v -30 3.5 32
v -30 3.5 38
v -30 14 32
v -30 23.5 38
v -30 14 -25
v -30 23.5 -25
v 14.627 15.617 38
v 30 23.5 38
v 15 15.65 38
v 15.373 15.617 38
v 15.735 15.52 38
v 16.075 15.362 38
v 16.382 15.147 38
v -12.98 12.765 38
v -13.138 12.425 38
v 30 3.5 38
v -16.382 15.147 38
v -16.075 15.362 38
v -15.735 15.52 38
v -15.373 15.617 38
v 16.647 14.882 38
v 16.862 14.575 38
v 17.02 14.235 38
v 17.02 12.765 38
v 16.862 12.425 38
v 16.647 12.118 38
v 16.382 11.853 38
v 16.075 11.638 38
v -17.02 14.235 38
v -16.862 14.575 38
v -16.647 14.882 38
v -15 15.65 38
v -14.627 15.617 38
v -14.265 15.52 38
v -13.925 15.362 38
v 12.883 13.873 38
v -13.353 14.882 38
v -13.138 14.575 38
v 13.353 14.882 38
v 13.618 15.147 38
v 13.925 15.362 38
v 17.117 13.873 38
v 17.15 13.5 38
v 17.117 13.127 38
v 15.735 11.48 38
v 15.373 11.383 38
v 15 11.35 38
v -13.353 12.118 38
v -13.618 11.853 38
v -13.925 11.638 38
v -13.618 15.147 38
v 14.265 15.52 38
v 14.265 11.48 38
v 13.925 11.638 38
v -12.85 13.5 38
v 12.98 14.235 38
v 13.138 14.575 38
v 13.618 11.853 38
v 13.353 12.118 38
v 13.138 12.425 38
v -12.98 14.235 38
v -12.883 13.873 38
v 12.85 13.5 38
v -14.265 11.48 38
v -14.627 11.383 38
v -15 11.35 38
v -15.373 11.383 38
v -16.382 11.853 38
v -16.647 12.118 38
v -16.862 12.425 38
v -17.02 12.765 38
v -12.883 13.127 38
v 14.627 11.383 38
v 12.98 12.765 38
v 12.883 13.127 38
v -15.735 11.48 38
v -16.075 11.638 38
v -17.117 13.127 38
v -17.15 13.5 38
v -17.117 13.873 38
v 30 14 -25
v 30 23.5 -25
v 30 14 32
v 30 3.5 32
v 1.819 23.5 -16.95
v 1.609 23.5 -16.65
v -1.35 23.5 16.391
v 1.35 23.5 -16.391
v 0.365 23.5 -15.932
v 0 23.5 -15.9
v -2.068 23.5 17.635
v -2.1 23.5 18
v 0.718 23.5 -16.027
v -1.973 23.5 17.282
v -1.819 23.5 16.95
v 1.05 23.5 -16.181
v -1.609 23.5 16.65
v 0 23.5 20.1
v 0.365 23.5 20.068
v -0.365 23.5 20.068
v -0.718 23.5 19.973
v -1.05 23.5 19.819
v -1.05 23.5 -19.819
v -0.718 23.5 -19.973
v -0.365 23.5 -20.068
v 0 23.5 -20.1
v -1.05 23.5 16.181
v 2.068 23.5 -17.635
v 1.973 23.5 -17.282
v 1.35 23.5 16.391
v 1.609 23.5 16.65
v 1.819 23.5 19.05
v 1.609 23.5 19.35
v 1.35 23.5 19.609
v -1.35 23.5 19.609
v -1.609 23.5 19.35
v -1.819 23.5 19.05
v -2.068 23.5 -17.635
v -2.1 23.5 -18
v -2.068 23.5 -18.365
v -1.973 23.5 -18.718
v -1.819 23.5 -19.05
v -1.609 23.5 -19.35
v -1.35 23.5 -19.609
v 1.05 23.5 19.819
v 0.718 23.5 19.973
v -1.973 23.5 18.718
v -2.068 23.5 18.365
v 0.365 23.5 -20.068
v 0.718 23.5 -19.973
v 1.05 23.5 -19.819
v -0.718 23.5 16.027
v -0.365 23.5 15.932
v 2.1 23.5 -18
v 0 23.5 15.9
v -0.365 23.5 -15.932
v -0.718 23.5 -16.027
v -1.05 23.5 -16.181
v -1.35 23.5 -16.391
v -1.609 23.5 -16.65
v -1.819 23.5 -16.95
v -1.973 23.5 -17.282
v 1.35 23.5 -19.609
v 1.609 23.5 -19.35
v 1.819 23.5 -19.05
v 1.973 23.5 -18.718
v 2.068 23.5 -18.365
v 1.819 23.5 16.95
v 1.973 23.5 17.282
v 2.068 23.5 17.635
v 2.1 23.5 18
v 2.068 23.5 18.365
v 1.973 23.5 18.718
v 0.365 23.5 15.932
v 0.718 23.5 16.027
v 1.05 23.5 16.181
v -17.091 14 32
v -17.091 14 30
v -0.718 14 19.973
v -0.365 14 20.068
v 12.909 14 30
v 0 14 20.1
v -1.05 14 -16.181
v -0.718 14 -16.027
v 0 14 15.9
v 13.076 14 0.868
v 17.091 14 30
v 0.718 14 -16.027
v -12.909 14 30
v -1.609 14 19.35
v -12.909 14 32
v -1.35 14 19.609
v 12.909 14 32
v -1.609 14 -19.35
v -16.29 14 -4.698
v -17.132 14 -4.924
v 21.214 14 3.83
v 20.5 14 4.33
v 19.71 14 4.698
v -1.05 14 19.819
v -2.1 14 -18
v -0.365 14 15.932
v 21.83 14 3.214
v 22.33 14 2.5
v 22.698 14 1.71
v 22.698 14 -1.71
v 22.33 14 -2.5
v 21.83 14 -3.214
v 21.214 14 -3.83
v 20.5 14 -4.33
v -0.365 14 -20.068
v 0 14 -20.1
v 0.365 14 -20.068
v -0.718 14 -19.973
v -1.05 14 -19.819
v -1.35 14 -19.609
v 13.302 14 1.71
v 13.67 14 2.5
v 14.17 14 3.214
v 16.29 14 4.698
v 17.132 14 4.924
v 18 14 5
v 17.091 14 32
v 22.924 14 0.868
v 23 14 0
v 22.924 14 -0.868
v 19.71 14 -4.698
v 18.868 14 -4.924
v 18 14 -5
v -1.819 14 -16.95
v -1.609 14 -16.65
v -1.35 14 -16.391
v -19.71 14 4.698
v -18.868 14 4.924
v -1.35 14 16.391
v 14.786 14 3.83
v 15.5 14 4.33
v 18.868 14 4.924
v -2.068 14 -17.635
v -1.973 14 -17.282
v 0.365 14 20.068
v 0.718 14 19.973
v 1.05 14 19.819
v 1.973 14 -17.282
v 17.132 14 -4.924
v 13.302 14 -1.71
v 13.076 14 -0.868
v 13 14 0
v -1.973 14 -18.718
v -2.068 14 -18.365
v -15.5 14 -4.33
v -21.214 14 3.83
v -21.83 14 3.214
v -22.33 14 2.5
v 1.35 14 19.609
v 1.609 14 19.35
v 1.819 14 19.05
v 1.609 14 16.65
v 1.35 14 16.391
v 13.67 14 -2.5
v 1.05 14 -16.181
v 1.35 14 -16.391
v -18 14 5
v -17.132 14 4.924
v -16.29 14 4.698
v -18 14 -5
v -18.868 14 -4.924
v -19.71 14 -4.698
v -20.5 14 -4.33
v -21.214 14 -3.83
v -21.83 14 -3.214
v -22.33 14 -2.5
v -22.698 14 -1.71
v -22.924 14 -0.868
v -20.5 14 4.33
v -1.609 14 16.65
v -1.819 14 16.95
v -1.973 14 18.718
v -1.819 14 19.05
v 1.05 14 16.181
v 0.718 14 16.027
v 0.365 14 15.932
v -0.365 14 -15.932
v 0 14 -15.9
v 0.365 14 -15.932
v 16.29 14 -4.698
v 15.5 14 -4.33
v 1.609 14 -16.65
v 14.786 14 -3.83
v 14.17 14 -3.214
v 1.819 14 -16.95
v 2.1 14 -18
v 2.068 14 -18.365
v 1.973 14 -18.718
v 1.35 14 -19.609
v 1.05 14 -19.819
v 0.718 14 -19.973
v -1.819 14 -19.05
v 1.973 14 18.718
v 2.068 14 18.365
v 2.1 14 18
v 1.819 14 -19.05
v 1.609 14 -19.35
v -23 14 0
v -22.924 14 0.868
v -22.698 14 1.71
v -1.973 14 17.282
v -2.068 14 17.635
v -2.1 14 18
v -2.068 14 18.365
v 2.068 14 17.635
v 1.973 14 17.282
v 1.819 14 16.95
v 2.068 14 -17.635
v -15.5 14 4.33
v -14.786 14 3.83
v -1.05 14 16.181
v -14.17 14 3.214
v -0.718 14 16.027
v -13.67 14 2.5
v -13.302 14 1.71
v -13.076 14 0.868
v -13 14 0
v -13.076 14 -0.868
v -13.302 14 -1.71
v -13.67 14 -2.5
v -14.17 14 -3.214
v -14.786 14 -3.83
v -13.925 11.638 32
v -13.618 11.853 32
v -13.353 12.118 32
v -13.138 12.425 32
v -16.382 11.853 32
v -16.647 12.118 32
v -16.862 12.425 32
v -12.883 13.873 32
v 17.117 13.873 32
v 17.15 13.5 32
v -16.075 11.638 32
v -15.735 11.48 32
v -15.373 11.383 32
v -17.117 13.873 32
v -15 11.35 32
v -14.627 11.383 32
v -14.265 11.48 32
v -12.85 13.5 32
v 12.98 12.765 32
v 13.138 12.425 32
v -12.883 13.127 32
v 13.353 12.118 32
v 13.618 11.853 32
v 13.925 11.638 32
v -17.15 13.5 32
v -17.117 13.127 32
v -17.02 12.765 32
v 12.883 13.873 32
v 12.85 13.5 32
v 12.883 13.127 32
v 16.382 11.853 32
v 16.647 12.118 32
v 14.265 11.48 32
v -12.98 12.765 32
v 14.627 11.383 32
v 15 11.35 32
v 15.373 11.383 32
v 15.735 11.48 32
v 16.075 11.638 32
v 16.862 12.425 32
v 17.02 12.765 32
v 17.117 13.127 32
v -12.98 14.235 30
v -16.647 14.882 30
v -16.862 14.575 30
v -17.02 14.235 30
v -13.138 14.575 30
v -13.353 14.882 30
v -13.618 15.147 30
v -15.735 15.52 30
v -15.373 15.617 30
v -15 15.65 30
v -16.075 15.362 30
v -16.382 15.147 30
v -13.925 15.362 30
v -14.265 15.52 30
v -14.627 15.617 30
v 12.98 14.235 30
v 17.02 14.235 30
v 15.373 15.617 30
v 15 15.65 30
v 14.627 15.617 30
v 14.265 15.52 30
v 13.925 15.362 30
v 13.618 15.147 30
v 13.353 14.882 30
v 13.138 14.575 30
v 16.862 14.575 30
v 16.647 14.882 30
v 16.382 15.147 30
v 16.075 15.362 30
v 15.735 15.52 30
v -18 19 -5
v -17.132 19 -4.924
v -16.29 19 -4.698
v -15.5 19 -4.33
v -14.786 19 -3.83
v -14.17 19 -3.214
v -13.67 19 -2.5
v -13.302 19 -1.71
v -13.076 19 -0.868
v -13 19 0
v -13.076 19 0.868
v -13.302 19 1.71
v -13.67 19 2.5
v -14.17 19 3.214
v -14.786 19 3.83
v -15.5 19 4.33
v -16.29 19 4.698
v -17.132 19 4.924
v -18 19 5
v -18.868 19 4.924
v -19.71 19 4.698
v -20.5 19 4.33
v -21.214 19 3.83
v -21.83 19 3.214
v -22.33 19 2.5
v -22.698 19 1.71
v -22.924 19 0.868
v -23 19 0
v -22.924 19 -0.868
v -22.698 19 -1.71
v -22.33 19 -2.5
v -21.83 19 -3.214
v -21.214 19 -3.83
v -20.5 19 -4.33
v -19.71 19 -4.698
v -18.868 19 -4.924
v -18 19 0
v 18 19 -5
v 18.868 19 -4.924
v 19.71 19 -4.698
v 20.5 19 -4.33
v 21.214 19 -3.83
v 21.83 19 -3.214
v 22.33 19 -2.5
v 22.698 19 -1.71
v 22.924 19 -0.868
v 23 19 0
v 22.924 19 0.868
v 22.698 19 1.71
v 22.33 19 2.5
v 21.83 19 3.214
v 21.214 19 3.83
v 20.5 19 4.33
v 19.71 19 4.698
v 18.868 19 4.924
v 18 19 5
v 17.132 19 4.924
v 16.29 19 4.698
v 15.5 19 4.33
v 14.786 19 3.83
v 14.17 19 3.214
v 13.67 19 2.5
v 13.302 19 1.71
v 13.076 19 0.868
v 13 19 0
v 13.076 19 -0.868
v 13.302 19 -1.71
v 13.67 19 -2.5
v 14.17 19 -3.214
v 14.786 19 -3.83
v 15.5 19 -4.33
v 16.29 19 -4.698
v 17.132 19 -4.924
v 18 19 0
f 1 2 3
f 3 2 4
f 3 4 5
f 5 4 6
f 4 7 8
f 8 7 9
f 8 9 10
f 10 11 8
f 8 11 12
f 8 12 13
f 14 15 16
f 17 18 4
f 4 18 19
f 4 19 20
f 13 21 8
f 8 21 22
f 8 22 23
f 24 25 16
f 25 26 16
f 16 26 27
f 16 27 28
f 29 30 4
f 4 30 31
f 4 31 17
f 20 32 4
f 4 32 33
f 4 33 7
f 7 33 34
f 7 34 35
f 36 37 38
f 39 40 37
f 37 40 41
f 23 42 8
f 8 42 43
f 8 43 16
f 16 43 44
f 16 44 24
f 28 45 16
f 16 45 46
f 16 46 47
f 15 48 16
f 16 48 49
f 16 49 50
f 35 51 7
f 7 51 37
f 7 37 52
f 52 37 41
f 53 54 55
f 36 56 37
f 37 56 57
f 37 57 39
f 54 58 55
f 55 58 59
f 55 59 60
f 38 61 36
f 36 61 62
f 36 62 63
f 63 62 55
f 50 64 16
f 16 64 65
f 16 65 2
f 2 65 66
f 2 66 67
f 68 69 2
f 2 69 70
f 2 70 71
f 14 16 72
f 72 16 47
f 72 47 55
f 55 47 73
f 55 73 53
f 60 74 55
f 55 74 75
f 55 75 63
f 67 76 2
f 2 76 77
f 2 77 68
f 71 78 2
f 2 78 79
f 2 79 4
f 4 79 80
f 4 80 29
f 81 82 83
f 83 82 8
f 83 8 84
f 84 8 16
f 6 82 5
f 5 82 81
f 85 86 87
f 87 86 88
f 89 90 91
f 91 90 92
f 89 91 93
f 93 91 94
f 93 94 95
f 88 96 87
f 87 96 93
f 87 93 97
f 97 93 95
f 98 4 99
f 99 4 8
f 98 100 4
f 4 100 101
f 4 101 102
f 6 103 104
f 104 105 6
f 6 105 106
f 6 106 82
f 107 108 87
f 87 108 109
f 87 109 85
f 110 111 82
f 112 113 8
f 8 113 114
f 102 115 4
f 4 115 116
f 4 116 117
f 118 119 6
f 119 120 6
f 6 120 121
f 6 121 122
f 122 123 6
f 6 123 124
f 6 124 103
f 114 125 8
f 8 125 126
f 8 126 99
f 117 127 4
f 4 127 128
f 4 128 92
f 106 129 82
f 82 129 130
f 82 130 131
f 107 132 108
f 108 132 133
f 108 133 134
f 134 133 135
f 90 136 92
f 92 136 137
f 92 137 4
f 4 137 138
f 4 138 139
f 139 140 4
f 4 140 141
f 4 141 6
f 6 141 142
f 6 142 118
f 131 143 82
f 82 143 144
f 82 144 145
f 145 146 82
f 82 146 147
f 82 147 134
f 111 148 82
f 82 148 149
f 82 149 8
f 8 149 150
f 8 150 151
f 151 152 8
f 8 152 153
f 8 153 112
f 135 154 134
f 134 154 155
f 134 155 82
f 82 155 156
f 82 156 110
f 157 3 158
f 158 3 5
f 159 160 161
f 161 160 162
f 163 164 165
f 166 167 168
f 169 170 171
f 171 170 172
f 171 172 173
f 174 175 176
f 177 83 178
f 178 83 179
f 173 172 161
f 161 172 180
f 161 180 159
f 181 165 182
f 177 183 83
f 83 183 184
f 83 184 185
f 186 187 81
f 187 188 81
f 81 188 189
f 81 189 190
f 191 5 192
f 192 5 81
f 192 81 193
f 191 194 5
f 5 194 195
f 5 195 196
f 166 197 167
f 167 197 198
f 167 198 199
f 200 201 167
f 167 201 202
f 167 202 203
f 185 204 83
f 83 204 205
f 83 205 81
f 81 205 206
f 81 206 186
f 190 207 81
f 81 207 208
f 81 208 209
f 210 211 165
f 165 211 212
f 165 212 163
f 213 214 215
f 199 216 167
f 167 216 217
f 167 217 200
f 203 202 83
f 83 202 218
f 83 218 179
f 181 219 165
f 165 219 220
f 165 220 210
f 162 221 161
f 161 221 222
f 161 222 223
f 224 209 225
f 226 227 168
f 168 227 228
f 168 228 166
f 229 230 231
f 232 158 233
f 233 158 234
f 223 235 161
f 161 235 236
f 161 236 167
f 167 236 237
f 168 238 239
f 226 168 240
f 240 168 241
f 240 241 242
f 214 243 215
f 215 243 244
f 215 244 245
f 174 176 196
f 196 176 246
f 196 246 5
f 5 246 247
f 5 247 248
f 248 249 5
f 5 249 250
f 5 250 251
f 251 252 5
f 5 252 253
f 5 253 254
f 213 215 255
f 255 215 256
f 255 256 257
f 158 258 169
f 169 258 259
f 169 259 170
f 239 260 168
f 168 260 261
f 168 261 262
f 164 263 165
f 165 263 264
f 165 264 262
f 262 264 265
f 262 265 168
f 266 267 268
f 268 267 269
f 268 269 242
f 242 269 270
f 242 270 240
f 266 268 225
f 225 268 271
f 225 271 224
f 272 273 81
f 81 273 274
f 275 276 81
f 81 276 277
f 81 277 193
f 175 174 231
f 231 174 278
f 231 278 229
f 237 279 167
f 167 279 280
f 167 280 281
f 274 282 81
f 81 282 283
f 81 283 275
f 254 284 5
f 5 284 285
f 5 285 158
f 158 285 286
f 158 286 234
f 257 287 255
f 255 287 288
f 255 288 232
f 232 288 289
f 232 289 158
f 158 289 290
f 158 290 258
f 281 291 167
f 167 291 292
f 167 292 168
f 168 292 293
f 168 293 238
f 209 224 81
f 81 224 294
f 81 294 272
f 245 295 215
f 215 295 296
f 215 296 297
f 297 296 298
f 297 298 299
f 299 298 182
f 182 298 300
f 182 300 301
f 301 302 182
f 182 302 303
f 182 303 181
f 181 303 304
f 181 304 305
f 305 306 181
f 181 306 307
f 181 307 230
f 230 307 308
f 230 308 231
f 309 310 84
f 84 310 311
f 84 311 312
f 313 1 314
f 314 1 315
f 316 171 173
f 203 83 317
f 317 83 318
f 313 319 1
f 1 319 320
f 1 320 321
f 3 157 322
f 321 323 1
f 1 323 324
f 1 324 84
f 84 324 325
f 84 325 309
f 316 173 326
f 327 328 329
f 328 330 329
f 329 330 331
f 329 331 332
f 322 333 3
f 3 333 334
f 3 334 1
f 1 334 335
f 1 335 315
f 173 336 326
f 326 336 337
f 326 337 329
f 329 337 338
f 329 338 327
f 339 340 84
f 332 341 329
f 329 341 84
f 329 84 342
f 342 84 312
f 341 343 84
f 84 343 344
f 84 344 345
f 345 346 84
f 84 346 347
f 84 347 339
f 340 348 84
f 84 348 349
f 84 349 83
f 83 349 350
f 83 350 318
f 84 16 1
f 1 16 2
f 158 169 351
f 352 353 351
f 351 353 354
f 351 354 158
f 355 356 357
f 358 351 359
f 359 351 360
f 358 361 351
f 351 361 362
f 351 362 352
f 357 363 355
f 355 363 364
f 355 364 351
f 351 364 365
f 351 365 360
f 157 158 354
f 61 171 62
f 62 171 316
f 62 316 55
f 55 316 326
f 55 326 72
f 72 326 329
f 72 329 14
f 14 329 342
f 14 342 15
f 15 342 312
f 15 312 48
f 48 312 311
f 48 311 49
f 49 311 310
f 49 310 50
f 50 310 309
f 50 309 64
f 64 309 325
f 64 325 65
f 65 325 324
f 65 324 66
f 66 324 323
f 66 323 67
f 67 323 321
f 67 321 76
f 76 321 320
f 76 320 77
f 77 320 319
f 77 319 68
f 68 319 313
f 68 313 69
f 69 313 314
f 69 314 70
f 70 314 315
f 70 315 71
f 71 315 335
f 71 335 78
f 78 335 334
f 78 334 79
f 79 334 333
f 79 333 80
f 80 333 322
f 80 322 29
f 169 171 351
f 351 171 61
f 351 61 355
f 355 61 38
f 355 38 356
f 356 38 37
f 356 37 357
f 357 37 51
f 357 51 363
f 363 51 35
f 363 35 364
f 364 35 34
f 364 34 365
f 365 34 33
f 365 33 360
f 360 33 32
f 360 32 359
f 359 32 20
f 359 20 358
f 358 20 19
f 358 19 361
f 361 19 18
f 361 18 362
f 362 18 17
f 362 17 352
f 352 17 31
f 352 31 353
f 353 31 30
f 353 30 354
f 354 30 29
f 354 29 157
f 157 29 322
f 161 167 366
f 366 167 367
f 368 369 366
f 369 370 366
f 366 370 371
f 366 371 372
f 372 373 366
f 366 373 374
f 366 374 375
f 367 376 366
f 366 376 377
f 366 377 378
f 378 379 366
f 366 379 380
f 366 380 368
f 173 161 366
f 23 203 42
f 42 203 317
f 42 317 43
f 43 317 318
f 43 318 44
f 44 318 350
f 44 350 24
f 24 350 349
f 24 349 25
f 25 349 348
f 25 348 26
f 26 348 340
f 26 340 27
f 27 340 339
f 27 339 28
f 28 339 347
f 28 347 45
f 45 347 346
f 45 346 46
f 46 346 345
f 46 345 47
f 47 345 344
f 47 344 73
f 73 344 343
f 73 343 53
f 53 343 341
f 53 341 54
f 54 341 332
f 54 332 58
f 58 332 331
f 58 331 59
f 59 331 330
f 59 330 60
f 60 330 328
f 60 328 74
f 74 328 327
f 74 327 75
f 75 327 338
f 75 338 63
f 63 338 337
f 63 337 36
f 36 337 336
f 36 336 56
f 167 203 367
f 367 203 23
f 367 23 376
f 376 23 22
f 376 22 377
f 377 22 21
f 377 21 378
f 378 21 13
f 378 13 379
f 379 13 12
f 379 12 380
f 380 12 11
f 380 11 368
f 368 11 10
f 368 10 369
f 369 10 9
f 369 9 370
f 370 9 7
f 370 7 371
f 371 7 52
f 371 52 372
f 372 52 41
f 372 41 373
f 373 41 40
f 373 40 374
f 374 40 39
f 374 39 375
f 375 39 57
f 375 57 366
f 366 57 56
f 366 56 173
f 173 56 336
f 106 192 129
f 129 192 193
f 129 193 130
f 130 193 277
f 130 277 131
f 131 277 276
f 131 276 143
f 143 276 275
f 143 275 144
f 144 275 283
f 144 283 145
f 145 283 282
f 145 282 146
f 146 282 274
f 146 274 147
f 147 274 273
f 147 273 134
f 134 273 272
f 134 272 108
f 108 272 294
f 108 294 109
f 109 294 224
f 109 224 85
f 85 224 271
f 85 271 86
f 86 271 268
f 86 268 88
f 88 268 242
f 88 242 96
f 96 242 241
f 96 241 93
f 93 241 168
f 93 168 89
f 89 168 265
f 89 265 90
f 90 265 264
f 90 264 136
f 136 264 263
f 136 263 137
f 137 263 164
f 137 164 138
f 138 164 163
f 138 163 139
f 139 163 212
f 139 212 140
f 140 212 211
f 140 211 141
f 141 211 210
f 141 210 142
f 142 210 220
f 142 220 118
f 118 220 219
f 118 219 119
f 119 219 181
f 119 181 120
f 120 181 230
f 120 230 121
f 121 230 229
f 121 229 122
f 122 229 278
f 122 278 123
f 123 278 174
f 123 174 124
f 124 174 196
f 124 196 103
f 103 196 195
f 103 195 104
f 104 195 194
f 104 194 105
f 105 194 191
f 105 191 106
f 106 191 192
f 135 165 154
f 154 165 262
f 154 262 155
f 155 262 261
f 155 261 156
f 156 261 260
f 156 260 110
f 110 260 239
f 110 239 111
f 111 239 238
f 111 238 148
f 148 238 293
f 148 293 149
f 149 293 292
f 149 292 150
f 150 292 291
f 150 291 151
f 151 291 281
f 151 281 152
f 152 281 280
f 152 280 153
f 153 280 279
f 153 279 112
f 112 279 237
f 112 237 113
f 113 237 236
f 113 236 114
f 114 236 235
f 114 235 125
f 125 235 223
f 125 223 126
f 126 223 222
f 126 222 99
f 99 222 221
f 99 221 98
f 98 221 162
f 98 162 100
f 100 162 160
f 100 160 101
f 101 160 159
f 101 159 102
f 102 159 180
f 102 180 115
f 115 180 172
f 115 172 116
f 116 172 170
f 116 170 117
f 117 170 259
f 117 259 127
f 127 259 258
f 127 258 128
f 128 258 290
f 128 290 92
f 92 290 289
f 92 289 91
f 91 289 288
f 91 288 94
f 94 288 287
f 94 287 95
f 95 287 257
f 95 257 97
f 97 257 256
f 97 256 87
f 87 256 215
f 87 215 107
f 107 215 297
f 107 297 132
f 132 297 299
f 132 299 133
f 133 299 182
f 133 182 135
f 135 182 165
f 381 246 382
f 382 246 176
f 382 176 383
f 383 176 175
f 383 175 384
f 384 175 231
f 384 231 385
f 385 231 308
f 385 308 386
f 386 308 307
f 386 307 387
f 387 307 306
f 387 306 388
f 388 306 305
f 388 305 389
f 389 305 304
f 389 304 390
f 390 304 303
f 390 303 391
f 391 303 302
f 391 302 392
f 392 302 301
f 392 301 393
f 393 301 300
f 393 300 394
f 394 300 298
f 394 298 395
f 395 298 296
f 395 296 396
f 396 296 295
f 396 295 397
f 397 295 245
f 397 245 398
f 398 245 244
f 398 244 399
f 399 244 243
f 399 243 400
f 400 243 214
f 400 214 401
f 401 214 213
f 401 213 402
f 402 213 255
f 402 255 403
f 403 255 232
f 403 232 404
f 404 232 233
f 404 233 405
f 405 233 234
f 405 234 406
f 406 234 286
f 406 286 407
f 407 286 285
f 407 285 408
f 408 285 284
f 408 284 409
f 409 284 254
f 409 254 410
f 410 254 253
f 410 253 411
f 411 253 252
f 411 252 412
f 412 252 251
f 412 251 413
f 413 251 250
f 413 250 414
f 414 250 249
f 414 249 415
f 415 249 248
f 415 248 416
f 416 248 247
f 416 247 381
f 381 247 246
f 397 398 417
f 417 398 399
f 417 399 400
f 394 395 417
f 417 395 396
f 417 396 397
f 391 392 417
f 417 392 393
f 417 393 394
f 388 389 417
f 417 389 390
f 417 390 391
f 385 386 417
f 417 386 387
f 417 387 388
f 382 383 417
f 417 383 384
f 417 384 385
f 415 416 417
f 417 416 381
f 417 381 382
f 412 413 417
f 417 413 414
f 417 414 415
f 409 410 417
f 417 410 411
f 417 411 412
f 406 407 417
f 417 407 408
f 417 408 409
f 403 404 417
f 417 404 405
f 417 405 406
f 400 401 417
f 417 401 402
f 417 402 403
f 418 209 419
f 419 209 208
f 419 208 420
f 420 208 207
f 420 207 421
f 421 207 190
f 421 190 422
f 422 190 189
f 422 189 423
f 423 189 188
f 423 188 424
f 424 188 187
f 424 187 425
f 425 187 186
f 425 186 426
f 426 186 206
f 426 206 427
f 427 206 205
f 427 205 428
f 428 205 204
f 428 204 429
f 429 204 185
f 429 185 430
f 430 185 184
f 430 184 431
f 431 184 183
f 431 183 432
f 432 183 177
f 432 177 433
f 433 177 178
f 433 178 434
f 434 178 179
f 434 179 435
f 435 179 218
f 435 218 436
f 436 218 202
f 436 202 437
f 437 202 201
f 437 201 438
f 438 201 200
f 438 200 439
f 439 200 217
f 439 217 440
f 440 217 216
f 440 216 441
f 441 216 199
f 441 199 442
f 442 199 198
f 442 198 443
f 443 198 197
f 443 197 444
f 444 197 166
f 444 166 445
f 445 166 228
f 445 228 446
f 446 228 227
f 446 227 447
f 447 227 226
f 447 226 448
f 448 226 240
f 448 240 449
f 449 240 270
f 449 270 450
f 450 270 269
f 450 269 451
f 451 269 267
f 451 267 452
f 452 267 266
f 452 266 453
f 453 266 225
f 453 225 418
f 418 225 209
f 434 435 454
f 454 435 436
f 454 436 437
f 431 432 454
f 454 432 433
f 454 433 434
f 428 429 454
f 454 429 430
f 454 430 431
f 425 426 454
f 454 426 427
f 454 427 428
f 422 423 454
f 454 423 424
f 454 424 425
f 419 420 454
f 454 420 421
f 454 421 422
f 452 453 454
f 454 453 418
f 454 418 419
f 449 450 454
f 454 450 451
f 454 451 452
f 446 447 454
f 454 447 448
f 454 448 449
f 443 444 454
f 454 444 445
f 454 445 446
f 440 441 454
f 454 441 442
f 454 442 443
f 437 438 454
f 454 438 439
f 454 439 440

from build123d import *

# Parameters (mm, degrees)
SK_TOP_W              = 60
SK_TOP_H              = 63
EX_TOP_DEPTH          = 9.5
SK_BACKWALL_W         = 60
SK_BACKWALL_H         = 6
EX_BACKWALL_DEPTH     = 10.5
SK_RAILBOLTS_R        = 2.15
CUT_RAILBOLTS_DEPTH   = 8
SK_GUIDEPINS_R        = 2.1
CUT_GUIDEPINS_DEPTH   = 9.5
SK_SPRINGSEATS_R      = 5
CUT_SPRINGSEATS_DEPTH = 5


with BuildPart() as part:
    # SK_Top → EX_Top (new body)
    with BuildSketch(Plane(origin=(0, 14, 0), x_dir=(1, 0, 0), z_dir=(0, 1, 0))):
        with Locations((0, -6.5)):
            Rectangle(SK_TOP_W, SK_TOP_H)
    extrude(amount=EX_TOP_DEPTH)

    # SK_BackWall → EX_BackWall (add)
    with BuildSketch(Plane(origin=(0, 3.5, 0), x_dir=(1, 0, 0), z_dir=(0, 1, 0))):
        with Locations((0, -35)):
            Rectangle(SK_BACKWALL_W, SK_BACKWALL_H)
    extrude(amount=EX_BACKWALL_DEPTH)

    # SK_RailBolts → CUT_RailBolts (cut)
    with BuildSketch(Plane.XY.offset(38)):
        with Locations((15, 13.5)):
            Circle(SK_RAILBOLTS_R)
        with Locations((-15, 13.5)):
            Circle(SK_RAILBOLTS_R)
    extrude(amount=-CUT_RAILBOLTS_DEPTH, mode=Mode.SUBTRACT)

    # SK_GuidePins → CUT_GuidePins (cut)
    with BuildSketch(Plane(origin=(0, 14, 0), x_dir=(1, 0, 0), z_dir=(0, 1, 0))):
        with Locations((0, -18)):
            Circle(SK_GUIDEPINS_R)
        with Locations((0, 18)):
            Circle(SK_GUIDEPINS_R)
    extrude(amount=CUT_GUIDEPINS_DEPTH, mode=Mode.SUBTRACT)

    # SK_SpringSeats → CUT_SpringSeats (cut)
    with BuildSketch(Plane(origin=(0, 14, 0), x_dir=(1, 0, 0), z_dir=(0, 1, 0))):
        with Locations((18, 0)):
            Circle(SK_SPRINGSEATS_R)
        with Locations((-18, 0)):
            Circle(SK_SPRINGSEATS_R)
    extrude(amount=CUT_SPRINGSEATS_DEPTH, mode=Mode.SUBTRACT)


solid = part.part
